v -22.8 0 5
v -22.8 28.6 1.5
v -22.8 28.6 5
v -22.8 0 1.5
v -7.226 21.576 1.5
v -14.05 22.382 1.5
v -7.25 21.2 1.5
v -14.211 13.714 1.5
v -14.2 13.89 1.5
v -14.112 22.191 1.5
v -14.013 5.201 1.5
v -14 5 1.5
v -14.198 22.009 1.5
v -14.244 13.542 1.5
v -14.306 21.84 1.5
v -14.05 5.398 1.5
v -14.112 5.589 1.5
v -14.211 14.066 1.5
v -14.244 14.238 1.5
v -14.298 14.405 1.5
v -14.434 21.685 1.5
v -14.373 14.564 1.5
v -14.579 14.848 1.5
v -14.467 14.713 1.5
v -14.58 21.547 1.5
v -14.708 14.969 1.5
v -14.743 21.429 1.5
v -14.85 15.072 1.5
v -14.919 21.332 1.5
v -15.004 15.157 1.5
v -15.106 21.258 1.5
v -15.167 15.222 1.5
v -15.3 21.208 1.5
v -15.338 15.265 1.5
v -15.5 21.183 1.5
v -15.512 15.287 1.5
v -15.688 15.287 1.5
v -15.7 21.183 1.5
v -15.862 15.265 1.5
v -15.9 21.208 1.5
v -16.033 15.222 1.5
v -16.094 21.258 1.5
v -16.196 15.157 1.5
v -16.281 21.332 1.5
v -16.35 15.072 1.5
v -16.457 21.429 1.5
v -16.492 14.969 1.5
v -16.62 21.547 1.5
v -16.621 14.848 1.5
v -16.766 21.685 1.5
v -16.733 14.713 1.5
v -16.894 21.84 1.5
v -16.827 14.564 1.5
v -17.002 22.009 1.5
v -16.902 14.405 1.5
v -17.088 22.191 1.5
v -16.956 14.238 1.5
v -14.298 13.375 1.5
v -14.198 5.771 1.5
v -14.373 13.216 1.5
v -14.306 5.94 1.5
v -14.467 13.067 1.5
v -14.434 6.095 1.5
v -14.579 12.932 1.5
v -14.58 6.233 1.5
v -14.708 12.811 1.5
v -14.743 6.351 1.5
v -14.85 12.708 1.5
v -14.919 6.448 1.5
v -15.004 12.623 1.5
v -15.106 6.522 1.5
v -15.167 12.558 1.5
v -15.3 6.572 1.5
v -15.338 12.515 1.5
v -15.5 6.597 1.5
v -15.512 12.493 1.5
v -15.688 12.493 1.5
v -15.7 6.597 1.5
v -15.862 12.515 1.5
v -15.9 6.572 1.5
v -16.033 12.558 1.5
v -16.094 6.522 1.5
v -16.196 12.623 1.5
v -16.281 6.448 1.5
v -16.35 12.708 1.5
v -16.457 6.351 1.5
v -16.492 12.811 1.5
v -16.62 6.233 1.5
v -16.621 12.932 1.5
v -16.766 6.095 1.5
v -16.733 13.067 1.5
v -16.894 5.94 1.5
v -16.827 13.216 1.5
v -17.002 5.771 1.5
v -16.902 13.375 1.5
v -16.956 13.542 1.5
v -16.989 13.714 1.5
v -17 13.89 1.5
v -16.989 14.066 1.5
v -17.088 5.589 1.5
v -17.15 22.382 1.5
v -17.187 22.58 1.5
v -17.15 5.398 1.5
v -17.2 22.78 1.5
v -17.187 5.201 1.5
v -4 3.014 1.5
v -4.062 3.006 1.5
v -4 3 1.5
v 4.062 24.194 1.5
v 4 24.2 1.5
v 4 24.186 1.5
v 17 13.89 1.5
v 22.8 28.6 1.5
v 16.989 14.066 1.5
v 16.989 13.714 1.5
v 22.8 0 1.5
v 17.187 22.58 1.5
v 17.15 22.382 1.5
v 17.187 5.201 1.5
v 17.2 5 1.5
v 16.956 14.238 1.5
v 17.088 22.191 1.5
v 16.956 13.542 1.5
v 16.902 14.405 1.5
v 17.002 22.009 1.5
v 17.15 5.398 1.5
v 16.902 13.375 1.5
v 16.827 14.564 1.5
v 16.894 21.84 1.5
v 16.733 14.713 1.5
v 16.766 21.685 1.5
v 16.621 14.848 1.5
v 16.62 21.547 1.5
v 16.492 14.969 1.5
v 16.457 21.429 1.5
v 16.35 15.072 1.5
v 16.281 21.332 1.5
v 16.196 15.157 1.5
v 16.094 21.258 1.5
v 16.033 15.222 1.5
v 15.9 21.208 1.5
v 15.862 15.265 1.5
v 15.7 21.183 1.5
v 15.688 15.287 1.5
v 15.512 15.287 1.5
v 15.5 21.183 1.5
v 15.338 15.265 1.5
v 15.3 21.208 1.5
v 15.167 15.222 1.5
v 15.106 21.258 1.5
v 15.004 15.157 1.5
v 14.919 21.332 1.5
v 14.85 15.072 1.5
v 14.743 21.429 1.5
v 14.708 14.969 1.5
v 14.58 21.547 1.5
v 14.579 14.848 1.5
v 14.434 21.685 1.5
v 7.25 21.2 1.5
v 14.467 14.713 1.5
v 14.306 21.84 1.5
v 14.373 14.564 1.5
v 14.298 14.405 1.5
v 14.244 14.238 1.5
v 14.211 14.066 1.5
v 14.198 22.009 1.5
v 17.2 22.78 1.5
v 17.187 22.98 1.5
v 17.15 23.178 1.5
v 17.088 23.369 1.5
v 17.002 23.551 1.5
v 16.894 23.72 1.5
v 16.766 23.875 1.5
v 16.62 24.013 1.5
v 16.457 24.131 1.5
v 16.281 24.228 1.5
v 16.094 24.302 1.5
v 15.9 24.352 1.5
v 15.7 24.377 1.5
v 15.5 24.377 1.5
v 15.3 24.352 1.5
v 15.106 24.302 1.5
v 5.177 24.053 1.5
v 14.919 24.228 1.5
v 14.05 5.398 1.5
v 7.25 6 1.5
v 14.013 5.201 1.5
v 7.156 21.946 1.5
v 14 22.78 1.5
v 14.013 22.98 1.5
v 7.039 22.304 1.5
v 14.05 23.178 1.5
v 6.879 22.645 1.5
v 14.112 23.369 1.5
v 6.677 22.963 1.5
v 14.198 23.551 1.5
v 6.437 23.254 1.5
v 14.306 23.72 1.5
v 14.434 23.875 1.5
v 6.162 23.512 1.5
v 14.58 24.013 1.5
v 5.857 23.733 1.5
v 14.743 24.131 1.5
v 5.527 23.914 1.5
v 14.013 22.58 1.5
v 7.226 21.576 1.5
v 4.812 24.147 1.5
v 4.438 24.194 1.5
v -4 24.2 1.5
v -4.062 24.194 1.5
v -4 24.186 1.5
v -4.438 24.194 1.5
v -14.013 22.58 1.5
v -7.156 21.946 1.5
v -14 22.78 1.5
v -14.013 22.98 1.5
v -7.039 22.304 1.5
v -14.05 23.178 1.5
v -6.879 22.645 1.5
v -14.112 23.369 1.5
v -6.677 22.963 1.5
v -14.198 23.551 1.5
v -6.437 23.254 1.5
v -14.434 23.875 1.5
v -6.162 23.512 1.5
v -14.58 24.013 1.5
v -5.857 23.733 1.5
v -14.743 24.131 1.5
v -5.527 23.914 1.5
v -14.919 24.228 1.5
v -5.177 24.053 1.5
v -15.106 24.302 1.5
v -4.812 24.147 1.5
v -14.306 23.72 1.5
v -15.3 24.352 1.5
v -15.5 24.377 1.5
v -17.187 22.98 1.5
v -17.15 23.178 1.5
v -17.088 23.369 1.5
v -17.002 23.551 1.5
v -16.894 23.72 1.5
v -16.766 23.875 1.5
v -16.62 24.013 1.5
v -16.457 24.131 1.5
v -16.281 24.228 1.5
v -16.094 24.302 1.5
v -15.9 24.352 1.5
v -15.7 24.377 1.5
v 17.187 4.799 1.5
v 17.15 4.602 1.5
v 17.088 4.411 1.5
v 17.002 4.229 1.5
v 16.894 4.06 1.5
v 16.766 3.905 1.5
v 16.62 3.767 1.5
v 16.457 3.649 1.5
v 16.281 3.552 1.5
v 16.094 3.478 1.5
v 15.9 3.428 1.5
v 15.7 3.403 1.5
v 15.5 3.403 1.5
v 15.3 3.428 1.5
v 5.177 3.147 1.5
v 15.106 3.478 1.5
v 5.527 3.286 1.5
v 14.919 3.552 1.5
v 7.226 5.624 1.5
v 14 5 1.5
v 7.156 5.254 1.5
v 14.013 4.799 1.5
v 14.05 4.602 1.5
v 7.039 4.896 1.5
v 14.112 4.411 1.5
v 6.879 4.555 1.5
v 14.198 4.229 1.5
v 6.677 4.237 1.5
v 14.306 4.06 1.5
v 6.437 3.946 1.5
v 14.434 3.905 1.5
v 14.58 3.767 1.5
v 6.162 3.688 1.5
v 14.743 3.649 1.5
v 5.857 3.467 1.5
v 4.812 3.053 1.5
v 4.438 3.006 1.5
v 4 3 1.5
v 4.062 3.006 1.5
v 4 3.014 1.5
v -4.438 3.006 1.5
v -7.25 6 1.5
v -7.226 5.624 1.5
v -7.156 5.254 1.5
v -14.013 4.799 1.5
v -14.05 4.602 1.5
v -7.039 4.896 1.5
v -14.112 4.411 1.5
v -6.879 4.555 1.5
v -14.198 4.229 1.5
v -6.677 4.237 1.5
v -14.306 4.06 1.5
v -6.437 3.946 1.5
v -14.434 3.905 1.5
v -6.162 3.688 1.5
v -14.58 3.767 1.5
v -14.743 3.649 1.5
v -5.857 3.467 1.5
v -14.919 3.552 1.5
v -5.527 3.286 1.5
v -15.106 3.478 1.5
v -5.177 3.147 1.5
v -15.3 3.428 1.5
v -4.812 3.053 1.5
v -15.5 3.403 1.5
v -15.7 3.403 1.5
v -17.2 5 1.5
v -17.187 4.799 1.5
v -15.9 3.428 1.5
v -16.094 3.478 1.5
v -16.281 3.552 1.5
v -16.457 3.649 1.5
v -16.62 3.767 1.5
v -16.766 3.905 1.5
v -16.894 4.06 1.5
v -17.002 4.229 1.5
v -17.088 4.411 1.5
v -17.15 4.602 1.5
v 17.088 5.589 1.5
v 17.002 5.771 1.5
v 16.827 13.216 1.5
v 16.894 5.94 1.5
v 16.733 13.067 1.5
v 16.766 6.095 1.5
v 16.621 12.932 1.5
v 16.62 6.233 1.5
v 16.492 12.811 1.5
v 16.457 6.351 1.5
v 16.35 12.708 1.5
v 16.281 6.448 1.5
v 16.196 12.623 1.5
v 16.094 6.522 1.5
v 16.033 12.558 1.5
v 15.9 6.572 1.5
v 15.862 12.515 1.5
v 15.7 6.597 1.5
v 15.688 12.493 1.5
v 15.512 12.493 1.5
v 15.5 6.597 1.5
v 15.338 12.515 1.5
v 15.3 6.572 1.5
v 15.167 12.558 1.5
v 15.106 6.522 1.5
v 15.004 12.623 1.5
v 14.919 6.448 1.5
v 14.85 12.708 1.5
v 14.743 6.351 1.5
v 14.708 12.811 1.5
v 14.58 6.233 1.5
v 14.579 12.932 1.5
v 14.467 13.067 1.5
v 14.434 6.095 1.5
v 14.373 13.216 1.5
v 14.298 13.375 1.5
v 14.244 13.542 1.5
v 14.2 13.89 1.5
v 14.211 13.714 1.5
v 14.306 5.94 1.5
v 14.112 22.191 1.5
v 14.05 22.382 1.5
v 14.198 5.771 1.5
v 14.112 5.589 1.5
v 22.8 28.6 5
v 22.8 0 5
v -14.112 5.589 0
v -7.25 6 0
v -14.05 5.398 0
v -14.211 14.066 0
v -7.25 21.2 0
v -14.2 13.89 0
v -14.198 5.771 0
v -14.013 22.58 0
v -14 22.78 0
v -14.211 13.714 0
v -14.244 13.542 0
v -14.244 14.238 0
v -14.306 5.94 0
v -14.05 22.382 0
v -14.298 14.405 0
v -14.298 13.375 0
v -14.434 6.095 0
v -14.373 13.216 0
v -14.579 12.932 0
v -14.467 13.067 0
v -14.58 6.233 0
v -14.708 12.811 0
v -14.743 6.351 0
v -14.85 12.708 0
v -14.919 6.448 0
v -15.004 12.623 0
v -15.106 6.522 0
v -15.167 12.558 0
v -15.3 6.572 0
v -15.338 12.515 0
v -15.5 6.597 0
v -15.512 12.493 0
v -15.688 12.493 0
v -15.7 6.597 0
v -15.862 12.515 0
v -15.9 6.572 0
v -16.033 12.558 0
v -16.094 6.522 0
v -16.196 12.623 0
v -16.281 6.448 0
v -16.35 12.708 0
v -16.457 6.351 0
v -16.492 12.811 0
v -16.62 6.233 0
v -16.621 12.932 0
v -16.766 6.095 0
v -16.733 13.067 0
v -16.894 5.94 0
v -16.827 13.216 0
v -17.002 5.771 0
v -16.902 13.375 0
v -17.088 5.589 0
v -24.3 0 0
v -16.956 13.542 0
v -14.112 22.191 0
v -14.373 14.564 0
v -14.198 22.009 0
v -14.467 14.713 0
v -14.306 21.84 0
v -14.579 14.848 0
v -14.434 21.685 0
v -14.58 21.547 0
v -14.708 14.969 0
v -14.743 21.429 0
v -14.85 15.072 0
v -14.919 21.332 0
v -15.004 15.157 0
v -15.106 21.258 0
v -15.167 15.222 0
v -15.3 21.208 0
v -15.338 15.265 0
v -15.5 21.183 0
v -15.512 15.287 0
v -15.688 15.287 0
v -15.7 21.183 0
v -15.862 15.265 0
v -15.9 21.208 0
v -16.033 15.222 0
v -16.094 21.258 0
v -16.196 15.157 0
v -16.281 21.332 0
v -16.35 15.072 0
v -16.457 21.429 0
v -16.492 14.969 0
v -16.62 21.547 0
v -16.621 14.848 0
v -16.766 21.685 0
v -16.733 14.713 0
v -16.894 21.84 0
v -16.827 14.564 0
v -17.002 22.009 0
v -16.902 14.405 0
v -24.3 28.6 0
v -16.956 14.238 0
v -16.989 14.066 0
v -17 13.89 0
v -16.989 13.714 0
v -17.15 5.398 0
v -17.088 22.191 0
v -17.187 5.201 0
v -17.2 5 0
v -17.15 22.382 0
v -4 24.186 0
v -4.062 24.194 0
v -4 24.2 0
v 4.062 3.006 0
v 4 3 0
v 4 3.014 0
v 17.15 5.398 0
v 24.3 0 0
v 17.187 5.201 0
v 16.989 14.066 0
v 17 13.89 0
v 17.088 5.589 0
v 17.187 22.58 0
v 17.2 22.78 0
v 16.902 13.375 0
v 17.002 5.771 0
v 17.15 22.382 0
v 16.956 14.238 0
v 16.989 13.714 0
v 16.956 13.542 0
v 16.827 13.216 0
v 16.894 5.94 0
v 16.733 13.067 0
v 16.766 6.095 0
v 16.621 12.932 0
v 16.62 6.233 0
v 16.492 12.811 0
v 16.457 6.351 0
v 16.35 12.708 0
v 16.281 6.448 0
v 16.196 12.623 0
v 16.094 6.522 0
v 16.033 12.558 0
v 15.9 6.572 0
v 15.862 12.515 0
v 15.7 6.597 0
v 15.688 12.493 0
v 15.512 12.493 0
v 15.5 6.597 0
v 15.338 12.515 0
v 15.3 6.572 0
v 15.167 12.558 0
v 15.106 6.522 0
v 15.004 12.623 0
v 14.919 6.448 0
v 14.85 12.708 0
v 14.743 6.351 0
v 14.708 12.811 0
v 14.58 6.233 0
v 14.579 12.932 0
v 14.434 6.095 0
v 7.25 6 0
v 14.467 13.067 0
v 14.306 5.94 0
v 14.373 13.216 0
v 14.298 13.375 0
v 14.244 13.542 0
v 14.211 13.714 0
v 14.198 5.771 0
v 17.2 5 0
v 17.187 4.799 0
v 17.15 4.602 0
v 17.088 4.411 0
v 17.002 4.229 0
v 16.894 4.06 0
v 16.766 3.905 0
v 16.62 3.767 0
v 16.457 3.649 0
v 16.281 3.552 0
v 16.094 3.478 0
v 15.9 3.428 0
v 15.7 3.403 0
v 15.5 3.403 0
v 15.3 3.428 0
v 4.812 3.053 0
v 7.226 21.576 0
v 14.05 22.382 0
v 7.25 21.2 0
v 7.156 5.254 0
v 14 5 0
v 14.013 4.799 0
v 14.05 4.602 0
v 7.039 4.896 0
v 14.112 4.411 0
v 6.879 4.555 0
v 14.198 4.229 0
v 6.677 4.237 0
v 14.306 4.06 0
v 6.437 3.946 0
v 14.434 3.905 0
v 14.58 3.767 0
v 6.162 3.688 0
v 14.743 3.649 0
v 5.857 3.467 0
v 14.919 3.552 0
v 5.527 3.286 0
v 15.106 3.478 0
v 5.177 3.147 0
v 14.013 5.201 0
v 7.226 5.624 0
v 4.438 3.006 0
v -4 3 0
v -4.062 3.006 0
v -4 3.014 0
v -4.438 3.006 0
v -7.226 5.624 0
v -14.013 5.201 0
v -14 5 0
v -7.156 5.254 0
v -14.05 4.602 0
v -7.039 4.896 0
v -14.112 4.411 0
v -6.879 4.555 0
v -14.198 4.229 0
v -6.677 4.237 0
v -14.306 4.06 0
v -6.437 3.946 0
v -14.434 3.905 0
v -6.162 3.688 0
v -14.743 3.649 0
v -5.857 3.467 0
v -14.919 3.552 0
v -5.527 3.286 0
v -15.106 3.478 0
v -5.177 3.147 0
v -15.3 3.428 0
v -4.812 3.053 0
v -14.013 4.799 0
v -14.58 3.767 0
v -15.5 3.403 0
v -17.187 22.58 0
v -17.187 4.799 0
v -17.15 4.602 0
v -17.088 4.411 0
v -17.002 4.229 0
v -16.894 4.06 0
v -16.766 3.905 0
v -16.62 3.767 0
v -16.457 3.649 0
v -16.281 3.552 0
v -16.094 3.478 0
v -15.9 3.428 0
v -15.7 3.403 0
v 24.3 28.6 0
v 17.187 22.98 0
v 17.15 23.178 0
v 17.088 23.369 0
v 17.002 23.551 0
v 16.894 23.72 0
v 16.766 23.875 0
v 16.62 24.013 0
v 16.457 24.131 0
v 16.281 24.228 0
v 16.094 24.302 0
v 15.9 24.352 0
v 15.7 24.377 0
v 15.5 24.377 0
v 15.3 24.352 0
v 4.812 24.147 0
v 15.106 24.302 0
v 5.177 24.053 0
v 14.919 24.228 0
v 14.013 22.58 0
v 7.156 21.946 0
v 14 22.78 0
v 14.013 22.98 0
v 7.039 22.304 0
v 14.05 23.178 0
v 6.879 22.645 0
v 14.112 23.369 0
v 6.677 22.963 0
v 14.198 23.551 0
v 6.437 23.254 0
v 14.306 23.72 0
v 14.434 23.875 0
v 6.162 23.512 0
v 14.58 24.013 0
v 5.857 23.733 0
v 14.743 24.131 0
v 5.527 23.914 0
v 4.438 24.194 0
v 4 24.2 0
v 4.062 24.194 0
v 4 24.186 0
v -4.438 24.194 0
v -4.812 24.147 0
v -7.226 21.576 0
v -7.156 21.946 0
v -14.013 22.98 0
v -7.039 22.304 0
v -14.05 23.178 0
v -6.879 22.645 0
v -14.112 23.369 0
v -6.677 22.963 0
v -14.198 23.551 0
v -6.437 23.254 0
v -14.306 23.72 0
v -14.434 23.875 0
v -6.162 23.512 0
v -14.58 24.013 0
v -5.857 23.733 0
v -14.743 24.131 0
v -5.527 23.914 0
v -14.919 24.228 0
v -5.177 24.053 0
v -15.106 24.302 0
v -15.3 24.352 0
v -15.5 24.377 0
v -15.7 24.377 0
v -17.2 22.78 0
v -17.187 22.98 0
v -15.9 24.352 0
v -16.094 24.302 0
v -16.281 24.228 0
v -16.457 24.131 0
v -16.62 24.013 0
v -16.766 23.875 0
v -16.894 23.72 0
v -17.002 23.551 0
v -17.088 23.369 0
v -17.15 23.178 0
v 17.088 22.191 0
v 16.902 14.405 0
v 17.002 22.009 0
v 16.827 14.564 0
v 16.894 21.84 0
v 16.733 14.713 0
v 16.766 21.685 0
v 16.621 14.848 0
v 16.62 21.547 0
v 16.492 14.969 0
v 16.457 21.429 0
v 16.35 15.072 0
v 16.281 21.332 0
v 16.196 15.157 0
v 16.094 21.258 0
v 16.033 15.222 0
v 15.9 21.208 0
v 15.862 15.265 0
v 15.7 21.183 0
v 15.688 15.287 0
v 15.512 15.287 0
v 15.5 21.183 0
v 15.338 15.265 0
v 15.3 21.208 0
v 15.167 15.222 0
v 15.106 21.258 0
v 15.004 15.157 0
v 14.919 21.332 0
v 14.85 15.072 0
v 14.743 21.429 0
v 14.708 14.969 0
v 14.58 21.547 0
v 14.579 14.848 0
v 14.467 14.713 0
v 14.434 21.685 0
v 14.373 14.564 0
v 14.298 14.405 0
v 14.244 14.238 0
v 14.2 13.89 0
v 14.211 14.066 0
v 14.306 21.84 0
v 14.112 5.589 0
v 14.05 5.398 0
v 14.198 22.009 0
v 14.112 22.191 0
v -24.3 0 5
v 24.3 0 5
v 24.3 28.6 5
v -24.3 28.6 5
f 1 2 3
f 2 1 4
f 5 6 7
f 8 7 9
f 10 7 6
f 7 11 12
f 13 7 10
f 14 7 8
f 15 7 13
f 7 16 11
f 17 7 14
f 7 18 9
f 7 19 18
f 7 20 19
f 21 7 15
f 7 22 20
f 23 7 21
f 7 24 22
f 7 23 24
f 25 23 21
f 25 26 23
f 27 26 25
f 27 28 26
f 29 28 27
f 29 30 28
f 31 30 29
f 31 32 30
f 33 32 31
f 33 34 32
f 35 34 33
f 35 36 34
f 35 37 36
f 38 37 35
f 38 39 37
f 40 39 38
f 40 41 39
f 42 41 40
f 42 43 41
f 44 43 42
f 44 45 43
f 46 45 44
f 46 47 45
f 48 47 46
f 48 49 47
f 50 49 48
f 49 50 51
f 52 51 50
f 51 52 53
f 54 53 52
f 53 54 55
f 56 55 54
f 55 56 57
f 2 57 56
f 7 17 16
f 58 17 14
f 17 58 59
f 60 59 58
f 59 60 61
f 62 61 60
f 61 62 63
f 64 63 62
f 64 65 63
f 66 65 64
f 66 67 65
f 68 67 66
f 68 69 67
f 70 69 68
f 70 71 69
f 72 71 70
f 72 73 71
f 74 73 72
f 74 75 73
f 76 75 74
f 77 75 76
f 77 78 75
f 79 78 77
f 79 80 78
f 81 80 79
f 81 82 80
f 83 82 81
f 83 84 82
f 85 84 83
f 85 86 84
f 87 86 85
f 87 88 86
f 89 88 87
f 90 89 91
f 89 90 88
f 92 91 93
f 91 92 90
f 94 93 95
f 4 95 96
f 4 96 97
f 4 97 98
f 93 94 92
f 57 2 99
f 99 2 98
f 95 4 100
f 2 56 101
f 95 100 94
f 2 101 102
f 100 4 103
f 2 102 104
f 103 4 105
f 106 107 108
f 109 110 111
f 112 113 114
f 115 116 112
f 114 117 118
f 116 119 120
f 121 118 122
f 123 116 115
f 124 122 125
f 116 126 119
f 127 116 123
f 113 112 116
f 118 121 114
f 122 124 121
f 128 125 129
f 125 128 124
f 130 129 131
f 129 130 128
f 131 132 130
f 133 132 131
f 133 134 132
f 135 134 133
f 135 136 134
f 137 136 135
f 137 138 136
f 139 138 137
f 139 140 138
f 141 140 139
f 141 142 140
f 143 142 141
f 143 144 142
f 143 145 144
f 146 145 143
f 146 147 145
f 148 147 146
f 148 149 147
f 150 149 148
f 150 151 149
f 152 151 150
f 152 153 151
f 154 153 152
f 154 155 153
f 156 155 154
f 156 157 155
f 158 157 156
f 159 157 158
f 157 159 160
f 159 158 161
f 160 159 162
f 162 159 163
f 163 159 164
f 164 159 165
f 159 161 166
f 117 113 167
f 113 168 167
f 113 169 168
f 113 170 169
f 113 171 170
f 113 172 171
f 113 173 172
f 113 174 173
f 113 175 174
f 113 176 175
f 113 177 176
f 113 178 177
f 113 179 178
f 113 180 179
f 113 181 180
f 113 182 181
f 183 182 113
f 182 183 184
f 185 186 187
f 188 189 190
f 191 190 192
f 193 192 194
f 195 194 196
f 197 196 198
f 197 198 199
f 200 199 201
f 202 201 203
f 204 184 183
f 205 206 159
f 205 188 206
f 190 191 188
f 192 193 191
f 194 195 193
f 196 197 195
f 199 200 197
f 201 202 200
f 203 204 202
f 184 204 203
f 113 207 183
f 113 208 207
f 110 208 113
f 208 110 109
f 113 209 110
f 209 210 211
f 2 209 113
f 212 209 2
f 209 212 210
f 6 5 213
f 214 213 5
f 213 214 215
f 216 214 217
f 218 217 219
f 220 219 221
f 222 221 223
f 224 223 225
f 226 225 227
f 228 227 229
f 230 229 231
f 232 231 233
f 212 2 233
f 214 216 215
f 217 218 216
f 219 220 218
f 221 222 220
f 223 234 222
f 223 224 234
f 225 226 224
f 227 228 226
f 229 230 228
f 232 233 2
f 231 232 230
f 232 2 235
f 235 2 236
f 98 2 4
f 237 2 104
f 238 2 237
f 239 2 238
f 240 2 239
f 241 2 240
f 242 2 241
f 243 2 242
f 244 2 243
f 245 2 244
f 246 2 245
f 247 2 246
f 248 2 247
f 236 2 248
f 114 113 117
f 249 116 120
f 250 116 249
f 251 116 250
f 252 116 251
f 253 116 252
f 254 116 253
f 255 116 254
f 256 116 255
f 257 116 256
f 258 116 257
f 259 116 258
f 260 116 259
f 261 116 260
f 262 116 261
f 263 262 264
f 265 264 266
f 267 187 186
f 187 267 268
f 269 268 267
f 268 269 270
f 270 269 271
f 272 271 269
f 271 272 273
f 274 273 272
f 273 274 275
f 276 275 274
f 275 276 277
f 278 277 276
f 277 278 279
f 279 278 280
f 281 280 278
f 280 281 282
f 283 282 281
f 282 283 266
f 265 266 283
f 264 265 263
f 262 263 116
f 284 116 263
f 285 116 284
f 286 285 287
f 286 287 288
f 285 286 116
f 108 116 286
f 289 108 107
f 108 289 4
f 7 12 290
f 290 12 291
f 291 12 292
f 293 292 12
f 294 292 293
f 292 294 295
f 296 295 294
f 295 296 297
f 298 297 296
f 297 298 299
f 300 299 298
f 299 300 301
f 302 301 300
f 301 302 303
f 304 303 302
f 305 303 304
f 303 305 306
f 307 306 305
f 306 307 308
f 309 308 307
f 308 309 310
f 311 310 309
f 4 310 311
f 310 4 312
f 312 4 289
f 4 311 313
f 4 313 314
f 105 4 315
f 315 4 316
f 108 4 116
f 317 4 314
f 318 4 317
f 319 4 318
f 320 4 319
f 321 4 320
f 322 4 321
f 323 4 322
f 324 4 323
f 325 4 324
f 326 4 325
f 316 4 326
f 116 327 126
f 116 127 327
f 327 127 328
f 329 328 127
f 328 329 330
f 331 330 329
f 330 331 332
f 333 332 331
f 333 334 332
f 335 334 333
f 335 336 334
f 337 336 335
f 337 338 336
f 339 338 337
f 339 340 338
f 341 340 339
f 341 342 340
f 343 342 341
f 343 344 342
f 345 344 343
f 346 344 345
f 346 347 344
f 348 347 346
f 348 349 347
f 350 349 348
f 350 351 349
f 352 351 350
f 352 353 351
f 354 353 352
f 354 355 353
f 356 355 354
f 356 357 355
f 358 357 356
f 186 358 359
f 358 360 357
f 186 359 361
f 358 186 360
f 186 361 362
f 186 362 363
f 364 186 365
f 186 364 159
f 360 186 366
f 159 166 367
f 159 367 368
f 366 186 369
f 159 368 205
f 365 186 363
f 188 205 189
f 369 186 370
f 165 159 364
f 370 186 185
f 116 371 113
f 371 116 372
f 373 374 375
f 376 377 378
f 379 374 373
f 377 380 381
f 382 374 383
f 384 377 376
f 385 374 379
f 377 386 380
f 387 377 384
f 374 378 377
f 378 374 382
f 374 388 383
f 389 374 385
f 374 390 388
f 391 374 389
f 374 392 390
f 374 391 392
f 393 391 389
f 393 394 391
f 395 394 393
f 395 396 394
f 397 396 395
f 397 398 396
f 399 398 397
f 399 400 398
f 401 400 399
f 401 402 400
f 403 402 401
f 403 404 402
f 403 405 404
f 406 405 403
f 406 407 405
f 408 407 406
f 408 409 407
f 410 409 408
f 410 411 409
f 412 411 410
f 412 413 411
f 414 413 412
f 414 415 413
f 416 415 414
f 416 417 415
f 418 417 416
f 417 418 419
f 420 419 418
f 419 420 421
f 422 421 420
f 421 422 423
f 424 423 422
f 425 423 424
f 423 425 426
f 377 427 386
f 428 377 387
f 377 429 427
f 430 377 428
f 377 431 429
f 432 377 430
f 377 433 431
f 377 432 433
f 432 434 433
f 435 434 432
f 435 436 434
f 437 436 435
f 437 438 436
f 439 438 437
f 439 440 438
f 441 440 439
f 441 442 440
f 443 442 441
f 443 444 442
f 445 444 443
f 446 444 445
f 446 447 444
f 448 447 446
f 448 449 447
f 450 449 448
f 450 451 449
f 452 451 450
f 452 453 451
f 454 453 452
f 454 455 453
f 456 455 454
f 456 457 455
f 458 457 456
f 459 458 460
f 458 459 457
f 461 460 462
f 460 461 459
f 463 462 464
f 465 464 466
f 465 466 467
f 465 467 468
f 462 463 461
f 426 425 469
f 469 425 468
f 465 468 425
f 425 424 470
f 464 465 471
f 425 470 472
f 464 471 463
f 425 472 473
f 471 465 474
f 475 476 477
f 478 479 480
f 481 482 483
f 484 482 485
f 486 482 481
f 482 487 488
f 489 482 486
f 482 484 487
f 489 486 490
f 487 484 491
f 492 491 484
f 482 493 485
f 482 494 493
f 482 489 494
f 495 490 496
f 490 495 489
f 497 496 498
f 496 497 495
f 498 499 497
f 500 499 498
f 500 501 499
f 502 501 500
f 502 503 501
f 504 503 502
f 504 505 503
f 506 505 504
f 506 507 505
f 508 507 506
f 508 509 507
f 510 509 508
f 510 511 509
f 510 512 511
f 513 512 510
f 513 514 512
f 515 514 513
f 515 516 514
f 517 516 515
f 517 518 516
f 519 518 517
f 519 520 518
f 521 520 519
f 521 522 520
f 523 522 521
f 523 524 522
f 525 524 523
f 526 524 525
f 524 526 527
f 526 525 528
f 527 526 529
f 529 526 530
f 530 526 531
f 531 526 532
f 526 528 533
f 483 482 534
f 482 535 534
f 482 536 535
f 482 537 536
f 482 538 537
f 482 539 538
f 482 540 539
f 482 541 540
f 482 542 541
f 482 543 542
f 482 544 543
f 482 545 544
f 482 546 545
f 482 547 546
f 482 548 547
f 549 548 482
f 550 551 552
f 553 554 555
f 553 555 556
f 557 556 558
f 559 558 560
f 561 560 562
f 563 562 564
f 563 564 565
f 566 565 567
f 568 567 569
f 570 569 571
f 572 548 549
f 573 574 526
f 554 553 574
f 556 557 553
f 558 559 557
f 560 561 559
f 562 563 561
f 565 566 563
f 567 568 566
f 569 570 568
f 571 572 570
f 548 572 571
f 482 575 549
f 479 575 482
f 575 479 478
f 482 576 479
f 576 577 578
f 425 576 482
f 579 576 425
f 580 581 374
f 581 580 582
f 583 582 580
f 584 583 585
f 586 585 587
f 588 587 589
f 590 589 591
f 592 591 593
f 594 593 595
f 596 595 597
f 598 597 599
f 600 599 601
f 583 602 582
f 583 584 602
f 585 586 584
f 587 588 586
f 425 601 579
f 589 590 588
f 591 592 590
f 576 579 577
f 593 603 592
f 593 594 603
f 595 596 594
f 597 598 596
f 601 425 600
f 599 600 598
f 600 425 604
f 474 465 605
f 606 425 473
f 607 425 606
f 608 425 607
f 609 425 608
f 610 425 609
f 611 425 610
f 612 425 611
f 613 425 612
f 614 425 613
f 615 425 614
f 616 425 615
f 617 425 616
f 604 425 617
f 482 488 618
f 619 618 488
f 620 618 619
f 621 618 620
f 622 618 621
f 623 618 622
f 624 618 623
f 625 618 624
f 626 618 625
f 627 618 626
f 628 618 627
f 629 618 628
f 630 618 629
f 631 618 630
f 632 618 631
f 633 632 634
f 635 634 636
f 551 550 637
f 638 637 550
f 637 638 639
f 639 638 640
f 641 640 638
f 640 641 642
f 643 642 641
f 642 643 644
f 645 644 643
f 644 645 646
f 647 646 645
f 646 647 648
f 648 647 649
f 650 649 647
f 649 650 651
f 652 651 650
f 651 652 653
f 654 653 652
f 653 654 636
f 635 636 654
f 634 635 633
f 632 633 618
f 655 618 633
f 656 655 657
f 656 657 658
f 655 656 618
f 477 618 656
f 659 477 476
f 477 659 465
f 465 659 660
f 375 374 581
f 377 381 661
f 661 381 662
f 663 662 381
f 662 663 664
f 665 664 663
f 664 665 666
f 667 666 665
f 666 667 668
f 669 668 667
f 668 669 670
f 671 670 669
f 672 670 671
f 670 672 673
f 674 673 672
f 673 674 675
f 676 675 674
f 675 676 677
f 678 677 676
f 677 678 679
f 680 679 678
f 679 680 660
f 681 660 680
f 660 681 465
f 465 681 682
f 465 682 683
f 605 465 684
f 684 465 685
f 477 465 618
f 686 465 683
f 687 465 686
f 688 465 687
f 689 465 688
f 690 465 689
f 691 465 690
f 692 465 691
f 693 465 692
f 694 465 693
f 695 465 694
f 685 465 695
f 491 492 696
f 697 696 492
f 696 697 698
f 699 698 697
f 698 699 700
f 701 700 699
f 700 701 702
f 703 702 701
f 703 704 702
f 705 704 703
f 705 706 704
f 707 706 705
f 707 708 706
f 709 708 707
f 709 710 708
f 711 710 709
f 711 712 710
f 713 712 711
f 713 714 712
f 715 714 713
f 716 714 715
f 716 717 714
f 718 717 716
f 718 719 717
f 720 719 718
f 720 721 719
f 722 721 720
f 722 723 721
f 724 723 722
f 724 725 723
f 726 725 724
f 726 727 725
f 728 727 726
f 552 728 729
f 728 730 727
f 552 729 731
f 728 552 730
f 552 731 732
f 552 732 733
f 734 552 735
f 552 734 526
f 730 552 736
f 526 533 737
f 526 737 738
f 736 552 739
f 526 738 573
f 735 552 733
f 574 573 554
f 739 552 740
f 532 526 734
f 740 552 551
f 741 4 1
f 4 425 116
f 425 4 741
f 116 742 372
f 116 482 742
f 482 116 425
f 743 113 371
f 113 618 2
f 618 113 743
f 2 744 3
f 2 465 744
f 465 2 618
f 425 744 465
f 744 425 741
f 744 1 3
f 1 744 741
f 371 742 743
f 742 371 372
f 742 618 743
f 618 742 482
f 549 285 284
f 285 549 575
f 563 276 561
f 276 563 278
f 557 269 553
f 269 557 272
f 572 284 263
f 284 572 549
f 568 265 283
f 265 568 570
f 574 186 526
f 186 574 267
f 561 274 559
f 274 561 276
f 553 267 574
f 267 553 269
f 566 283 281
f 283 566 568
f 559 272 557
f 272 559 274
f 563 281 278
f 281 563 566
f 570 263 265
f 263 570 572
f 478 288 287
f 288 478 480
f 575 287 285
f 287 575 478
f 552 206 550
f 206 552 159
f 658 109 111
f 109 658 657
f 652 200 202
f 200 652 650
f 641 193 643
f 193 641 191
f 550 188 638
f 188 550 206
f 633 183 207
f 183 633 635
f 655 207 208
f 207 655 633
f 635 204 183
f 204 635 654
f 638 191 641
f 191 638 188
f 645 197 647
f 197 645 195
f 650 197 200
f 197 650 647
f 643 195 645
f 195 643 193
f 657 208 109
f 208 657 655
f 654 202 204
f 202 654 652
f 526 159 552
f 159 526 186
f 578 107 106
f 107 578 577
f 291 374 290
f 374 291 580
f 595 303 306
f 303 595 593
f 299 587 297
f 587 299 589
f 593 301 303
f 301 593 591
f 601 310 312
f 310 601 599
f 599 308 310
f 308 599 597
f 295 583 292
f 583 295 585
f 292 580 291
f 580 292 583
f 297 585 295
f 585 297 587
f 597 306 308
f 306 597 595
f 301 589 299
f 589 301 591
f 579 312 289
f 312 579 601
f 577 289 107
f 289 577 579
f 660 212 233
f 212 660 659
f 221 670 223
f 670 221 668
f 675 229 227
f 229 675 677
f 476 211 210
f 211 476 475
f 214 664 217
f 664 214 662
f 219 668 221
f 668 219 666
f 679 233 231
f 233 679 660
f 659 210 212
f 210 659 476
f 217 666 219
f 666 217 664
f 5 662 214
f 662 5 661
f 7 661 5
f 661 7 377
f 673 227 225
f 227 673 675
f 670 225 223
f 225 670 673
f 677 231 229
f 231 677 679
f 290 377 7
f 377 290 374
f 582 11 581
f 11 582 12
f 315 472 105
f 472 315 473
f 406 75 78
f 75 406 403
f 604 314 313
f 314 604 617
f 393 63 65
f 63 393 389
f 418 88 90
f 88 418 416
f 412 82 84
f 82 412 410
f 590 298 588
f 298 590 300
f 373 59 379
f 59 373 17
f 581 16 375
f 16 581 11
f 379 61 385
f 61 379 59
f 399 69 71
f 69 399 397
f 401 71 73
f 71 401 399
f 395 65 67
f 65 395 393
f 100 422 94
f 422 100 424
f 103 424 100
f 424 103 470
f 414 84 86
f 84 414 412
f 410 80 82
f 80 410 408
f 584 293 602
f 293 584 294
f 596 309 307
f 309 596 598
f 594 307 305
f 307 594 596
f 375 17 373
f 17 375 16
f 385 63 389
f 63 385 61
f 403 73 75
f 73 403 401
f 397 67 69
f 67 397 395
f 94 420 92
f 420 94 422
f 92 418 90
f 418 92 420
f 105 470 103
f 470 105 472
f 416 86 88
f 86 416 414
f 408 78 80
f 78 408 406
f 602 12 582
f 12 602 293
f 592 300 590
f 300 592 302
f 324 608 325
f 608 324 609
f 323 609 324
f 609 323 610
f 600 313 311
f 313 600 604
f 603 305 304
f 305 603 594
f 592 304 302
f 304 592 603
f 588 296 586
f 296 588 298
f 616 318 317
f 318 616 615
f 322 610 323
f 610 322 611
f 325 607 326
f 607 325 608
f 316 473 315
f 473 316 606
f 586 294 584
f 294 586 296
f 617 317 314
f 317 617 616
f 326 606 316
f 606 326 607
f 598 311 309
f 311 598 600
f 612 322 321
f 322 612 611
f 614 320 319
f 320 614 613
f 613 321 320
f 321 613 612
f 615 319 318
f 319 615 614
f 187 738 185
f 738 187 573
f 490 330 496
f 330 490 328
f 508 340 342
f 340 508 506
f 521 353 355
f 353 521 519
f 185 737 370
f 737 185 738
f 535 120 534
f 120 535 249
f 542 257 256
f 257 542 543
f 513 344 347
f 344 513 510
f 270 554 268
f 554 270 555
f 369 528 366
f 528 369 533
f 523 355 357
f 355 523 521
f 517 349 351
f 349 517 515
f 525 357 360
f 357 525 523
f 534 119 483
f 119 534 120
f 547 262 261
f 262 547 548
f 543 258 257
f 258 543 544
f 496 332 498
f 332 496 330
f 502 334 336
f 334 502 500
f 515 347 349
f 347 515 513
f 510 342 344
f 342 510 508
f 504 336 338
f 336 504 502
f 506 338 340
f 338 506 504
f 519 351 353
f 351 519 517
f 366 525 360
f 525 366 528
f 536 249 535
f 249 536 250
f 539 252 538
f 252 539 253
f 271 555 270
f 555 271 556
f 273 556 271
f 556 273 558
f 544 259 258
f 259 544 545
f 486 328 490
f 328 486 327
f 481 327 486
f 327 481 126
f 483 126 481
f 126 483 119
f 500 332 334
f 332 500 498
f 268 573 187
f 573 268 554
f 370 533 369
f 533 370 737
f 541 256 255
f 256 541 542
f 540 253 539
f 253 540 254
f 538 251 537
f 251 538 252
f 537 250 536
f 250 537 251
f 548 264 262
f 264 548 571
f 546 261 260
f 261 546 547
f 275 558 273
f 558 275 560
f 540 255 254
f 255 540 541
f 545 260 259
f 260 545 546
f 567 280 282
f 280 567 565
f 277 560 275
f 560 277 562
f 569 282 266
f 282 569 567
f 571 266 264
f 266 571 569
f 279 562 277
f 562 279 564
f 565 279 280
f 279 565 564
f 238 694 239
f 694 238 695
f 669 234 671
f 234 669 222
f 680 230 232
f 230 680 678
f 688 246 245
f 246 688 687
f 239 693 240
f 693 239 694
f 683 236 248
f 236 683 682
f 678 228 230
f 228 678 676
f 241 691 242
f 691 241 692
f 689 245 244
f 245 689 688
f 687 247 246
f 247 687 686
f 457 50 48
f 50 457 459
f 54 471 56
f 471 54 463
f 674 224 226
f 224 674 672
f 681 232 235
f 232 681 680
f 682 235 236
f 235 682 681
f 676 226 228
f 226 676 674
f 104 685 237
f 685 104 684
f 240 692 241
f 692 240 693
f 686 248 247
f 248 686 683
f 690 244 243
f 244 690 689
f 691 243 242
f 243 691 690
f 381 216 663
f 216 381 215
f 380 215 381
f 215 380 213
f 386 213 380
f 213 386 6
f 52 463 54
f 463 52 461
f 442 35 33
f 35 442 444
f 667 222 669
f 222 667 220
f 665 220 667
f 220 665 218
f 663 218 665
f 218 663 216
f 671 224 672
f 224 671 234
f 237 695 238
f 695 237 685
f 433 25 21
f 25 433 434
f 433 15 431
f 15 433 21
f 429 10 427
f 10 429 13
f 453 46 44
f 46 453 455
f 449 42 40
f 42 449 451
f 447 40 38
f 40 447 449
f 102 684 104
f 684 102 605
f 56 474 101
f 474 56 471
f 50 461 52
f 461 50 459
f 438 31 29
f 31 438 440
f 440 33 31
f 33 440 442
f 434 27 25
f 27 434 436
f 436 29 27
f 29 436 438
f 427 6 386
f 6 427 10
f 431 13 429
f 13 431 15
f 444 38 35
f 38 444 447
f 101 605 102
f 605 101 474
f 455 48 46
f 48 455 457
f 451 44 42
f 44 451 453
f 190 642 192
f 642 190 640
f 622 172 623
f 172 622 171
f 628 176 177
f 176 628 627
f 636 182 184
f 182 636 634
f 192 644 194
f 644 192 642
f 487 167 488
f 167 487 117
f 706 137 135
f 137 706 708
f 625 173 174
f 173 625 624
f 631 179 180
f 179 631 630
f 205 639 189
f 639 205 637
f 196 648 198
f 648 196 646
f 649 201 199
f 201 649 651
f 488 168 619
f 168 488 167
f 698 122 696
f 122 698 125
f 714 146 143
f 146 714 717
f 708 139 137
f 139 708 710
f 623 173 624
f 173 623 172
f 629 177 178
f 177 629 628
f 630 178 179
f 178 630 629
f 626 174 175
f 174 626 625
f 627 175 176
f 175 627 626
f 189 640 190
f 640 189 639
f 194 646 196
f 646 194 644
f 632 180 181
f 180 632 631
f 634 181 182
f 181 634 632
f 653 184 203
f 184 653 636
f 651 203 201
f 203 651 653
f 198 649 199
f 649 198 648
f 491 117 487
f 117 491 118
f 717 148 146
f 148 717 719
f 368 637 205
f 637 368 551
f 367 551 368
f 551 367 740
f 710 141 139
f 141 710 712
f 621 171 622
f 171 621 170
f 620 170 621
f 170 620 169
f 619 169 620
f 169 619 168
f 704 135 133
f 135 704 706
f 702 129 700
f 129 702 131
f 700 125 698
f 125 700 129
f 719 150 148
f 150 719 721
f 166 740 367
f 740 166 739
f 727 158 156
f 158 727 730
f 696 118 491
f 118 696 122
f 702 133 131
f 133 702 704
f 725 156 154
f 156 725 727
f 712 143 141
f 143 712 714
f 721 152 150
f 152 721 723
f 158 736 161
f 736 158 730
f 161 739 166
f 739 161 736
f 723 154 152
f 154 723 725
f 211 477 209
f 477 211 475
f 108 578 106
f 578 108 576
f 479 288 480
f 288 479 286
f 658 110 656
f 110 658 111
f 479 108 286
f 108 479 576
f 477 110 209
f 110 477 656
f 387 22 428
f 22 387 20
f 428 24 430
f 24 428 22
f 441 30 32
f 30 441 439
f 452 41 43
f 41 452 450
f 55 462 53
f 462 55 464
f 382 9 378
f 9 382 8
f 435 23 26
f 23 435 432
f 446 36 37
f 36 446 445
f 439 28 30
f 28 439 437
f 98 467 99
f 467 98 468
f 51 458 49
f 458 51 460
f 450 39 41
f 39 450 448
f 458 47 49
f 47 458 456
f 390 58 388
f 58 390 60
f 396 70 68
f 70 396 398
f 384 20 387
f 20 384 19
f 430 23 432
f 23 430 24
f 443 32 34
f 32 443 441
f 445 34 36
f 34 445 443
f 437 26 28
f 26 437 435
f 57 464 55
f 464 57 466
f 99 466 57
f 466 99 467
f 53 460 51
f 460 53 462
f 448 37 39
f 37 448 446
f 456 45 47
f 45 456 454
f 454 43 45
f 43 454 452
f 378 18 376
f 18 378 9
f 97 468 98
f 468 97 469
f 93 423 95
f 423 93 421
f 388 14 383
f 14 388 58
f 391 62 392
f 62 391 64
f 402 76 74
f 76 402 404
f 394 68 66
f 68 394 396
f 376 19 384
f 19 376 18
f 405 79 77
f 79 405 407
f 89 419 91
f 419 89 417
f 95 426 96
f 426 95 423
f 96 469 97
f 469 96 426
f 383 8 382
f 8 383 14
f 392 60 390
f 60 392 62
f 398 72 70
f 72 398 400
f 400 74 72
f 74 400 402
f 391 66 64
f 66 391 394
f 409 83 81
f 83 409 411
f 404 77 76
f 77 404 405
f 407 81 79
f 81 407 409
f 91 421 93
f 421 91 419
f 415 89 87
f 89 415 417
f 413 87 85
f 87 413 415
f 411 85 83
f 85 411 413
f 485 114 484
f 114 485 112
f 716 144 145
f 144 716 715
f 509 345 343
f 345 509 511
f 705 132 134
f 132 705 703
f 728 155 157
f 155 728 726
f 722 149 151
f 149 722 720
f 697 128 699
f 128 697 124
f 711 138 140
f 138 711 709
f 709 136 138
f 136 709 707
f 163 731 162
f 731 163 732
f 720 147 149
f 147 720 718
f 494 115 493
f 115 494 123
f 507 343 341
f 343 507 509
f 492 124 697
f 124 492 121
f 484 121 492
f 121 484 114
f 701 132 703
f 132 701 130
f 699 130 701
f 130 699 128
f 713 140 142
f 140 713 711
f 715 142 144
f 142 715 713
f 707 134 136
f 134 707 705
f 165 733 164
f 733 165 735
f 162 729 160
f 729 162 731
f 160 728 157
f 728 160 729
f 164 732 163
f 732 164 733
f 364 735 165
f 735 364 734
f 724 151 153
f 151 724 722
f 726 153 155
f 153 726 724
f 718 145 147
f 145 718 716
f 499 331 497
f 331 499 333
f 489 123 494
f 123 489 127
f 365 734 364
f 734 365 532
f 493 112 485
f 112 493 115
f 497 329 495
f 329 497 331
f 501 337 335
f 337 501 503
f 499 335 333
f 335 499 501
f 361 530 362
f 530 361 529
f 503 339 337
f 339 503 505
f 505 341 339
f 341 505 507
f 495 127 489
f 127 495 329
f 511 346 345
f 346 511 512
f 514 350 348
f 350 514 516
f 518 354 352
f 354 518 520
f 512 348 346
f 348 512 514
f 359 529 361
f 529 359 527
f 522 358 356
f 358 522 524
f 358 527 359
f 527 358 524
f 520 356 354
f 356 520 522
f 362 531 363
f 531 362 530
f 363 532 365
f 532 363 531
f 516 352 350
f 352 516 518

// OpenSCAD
/* File: codewheel_sensor.scad
 * Carrier for PC board with photointerruptor sensors
 * Author: deh
 * Latest edit: 201702032031
 */

 $fn=50;

// PC board dimensions
pc_slop = 4;
pcwid = 49.6 + pc_slop;	// Width of PC board
pclen = 83.0 + pc_slop;	// Length of PC board
pcthick = 1.7;	// Thickness of board

// Photo interruptor - Sharp GP1A57HRJ00F
 ph_slot_ht = 10;  // Width of sloth for encoder wheel
 ph_body_width = 5;// Width of body
 ph_body_ht = 18.6;// Height of body
 ph_slot_y = 3;    // Base to beginning of slot
 ph_slot_x = 15.2; // Base to end of slot
 ph_lead_y = 15.2; // Spacing between pin groups
 ph_lead_x = 2.54; // Spacing between pins

// Slotted panel
 sp_wid1 = 5;
 sp_slot = 3.5;
 sp_wid2 = 5;
 sp_cutout = 2 * (ph_body_width + 4);
 sp_ofs_y = sp_wid1 + sp_wid2 + sp_slot + sp_cutout/2 - 0.2;

ca_thick = 1.5;	// Thickness of carrier
ca_ht = ph_body_ht + 10; // Height of carrier
ca_ae_ht = ca_thick + 3.5;
ca_cutout = sp_ofs_y*2 + 1;


module carrier()
{
   // Base
   cube([ca_cutout, ca_ht, ca_thick]);

   // Alignment edges
   translate([-ca_thick,0,0])
      cube([ca_thick, ca_ht, ca_ae_ht]);
   translate([ca_cutout,0,0])
      cube([ca_thick, ca_ht, ca_ae_ht]);
}
module screw_hole(dia)
{
    cylinder(d = dia, h = ca_thick + .001, center = false);

}
pu_screw = 3.2;     // Diameter of screw
pu_ofs_x = sp_wid1 + sp_cutout/2 + pu_screw/2;
pu_ofs_y1 = 5;
pu_ofs_y2 = 17.78 + pu_ofs_y1 ;
pu_ofs_y3 = 6;  	// Cutout hole offset from bottom
pu_lead_hole = 6.0;	// Hole where leads come thru perf board
pu_selftap_dia = 2.8;	// Self-tapping screws for perf board
pu_selftap_y = (pu_ofs_y2-pu_ofs_y1)/2 + pu_ofs_y1;
pu_sensor_wid = 8.5;	// Width of sensor body

module center_cutout()
{
  translate([0,pu_ofs_y3,0])
       screw_hole(pu_lead_hole);
  translate([0,ph_lead_y + pu_ofs_y3,0])
       screw_hole(pu_lead_hole);
  translate([-pu_lead_hole/2,pu_ofs_y3,0])
       cube([pu_lead_hole,ph_lead_y,ca_thick],false);

}

module punch()
{
echo (pu_ofs_y2-pu_ofs_y1);
  // Four 4-40 screw holes
  translate([-pu_ofs_x,pu_ofs_y1,0])
       screw_hole(pu_screw); 
  translate([ pu_ofs_x,pu_ofs_y1,0])
       screw_hole(pu_screw); 
  translate([-pu_ofs_x,pu_ofs_y2,0])
       screw_hole(pu_screw); 
  translate([ pu_ofs_x,pu_ofs_y2,0])
       screw_hole(pu_screw); 

 // Center cutout
  translate([pu_sensor_wid/2,0,0])
    center_cutout();
  translate([-pu_sensor_wid/2,0,0])
    center_cutout();
  translate([-pu_lead_hole/2-1,pu_ofs_y3-pu_lead_hole/2,0])
    cube([pu_lead_hole+2,ph_lead_y+pu_lead_hole,ca_thick+.01],false);

// PC board self-tapping screws
  translate([-pu_ofs_x,pu_selftap_y,0])
       screw_hole(pu_selftap_dia); 
  translate([ pu_ofs_x,pu_selftap_y,0])
       screw_hole(pu_selftap_dia); 
}

module total();
{
    difference()
    {
       translate ([-ca_cutout/2,0,0])
          carrier();
       punch();
    }
    
}

total();
